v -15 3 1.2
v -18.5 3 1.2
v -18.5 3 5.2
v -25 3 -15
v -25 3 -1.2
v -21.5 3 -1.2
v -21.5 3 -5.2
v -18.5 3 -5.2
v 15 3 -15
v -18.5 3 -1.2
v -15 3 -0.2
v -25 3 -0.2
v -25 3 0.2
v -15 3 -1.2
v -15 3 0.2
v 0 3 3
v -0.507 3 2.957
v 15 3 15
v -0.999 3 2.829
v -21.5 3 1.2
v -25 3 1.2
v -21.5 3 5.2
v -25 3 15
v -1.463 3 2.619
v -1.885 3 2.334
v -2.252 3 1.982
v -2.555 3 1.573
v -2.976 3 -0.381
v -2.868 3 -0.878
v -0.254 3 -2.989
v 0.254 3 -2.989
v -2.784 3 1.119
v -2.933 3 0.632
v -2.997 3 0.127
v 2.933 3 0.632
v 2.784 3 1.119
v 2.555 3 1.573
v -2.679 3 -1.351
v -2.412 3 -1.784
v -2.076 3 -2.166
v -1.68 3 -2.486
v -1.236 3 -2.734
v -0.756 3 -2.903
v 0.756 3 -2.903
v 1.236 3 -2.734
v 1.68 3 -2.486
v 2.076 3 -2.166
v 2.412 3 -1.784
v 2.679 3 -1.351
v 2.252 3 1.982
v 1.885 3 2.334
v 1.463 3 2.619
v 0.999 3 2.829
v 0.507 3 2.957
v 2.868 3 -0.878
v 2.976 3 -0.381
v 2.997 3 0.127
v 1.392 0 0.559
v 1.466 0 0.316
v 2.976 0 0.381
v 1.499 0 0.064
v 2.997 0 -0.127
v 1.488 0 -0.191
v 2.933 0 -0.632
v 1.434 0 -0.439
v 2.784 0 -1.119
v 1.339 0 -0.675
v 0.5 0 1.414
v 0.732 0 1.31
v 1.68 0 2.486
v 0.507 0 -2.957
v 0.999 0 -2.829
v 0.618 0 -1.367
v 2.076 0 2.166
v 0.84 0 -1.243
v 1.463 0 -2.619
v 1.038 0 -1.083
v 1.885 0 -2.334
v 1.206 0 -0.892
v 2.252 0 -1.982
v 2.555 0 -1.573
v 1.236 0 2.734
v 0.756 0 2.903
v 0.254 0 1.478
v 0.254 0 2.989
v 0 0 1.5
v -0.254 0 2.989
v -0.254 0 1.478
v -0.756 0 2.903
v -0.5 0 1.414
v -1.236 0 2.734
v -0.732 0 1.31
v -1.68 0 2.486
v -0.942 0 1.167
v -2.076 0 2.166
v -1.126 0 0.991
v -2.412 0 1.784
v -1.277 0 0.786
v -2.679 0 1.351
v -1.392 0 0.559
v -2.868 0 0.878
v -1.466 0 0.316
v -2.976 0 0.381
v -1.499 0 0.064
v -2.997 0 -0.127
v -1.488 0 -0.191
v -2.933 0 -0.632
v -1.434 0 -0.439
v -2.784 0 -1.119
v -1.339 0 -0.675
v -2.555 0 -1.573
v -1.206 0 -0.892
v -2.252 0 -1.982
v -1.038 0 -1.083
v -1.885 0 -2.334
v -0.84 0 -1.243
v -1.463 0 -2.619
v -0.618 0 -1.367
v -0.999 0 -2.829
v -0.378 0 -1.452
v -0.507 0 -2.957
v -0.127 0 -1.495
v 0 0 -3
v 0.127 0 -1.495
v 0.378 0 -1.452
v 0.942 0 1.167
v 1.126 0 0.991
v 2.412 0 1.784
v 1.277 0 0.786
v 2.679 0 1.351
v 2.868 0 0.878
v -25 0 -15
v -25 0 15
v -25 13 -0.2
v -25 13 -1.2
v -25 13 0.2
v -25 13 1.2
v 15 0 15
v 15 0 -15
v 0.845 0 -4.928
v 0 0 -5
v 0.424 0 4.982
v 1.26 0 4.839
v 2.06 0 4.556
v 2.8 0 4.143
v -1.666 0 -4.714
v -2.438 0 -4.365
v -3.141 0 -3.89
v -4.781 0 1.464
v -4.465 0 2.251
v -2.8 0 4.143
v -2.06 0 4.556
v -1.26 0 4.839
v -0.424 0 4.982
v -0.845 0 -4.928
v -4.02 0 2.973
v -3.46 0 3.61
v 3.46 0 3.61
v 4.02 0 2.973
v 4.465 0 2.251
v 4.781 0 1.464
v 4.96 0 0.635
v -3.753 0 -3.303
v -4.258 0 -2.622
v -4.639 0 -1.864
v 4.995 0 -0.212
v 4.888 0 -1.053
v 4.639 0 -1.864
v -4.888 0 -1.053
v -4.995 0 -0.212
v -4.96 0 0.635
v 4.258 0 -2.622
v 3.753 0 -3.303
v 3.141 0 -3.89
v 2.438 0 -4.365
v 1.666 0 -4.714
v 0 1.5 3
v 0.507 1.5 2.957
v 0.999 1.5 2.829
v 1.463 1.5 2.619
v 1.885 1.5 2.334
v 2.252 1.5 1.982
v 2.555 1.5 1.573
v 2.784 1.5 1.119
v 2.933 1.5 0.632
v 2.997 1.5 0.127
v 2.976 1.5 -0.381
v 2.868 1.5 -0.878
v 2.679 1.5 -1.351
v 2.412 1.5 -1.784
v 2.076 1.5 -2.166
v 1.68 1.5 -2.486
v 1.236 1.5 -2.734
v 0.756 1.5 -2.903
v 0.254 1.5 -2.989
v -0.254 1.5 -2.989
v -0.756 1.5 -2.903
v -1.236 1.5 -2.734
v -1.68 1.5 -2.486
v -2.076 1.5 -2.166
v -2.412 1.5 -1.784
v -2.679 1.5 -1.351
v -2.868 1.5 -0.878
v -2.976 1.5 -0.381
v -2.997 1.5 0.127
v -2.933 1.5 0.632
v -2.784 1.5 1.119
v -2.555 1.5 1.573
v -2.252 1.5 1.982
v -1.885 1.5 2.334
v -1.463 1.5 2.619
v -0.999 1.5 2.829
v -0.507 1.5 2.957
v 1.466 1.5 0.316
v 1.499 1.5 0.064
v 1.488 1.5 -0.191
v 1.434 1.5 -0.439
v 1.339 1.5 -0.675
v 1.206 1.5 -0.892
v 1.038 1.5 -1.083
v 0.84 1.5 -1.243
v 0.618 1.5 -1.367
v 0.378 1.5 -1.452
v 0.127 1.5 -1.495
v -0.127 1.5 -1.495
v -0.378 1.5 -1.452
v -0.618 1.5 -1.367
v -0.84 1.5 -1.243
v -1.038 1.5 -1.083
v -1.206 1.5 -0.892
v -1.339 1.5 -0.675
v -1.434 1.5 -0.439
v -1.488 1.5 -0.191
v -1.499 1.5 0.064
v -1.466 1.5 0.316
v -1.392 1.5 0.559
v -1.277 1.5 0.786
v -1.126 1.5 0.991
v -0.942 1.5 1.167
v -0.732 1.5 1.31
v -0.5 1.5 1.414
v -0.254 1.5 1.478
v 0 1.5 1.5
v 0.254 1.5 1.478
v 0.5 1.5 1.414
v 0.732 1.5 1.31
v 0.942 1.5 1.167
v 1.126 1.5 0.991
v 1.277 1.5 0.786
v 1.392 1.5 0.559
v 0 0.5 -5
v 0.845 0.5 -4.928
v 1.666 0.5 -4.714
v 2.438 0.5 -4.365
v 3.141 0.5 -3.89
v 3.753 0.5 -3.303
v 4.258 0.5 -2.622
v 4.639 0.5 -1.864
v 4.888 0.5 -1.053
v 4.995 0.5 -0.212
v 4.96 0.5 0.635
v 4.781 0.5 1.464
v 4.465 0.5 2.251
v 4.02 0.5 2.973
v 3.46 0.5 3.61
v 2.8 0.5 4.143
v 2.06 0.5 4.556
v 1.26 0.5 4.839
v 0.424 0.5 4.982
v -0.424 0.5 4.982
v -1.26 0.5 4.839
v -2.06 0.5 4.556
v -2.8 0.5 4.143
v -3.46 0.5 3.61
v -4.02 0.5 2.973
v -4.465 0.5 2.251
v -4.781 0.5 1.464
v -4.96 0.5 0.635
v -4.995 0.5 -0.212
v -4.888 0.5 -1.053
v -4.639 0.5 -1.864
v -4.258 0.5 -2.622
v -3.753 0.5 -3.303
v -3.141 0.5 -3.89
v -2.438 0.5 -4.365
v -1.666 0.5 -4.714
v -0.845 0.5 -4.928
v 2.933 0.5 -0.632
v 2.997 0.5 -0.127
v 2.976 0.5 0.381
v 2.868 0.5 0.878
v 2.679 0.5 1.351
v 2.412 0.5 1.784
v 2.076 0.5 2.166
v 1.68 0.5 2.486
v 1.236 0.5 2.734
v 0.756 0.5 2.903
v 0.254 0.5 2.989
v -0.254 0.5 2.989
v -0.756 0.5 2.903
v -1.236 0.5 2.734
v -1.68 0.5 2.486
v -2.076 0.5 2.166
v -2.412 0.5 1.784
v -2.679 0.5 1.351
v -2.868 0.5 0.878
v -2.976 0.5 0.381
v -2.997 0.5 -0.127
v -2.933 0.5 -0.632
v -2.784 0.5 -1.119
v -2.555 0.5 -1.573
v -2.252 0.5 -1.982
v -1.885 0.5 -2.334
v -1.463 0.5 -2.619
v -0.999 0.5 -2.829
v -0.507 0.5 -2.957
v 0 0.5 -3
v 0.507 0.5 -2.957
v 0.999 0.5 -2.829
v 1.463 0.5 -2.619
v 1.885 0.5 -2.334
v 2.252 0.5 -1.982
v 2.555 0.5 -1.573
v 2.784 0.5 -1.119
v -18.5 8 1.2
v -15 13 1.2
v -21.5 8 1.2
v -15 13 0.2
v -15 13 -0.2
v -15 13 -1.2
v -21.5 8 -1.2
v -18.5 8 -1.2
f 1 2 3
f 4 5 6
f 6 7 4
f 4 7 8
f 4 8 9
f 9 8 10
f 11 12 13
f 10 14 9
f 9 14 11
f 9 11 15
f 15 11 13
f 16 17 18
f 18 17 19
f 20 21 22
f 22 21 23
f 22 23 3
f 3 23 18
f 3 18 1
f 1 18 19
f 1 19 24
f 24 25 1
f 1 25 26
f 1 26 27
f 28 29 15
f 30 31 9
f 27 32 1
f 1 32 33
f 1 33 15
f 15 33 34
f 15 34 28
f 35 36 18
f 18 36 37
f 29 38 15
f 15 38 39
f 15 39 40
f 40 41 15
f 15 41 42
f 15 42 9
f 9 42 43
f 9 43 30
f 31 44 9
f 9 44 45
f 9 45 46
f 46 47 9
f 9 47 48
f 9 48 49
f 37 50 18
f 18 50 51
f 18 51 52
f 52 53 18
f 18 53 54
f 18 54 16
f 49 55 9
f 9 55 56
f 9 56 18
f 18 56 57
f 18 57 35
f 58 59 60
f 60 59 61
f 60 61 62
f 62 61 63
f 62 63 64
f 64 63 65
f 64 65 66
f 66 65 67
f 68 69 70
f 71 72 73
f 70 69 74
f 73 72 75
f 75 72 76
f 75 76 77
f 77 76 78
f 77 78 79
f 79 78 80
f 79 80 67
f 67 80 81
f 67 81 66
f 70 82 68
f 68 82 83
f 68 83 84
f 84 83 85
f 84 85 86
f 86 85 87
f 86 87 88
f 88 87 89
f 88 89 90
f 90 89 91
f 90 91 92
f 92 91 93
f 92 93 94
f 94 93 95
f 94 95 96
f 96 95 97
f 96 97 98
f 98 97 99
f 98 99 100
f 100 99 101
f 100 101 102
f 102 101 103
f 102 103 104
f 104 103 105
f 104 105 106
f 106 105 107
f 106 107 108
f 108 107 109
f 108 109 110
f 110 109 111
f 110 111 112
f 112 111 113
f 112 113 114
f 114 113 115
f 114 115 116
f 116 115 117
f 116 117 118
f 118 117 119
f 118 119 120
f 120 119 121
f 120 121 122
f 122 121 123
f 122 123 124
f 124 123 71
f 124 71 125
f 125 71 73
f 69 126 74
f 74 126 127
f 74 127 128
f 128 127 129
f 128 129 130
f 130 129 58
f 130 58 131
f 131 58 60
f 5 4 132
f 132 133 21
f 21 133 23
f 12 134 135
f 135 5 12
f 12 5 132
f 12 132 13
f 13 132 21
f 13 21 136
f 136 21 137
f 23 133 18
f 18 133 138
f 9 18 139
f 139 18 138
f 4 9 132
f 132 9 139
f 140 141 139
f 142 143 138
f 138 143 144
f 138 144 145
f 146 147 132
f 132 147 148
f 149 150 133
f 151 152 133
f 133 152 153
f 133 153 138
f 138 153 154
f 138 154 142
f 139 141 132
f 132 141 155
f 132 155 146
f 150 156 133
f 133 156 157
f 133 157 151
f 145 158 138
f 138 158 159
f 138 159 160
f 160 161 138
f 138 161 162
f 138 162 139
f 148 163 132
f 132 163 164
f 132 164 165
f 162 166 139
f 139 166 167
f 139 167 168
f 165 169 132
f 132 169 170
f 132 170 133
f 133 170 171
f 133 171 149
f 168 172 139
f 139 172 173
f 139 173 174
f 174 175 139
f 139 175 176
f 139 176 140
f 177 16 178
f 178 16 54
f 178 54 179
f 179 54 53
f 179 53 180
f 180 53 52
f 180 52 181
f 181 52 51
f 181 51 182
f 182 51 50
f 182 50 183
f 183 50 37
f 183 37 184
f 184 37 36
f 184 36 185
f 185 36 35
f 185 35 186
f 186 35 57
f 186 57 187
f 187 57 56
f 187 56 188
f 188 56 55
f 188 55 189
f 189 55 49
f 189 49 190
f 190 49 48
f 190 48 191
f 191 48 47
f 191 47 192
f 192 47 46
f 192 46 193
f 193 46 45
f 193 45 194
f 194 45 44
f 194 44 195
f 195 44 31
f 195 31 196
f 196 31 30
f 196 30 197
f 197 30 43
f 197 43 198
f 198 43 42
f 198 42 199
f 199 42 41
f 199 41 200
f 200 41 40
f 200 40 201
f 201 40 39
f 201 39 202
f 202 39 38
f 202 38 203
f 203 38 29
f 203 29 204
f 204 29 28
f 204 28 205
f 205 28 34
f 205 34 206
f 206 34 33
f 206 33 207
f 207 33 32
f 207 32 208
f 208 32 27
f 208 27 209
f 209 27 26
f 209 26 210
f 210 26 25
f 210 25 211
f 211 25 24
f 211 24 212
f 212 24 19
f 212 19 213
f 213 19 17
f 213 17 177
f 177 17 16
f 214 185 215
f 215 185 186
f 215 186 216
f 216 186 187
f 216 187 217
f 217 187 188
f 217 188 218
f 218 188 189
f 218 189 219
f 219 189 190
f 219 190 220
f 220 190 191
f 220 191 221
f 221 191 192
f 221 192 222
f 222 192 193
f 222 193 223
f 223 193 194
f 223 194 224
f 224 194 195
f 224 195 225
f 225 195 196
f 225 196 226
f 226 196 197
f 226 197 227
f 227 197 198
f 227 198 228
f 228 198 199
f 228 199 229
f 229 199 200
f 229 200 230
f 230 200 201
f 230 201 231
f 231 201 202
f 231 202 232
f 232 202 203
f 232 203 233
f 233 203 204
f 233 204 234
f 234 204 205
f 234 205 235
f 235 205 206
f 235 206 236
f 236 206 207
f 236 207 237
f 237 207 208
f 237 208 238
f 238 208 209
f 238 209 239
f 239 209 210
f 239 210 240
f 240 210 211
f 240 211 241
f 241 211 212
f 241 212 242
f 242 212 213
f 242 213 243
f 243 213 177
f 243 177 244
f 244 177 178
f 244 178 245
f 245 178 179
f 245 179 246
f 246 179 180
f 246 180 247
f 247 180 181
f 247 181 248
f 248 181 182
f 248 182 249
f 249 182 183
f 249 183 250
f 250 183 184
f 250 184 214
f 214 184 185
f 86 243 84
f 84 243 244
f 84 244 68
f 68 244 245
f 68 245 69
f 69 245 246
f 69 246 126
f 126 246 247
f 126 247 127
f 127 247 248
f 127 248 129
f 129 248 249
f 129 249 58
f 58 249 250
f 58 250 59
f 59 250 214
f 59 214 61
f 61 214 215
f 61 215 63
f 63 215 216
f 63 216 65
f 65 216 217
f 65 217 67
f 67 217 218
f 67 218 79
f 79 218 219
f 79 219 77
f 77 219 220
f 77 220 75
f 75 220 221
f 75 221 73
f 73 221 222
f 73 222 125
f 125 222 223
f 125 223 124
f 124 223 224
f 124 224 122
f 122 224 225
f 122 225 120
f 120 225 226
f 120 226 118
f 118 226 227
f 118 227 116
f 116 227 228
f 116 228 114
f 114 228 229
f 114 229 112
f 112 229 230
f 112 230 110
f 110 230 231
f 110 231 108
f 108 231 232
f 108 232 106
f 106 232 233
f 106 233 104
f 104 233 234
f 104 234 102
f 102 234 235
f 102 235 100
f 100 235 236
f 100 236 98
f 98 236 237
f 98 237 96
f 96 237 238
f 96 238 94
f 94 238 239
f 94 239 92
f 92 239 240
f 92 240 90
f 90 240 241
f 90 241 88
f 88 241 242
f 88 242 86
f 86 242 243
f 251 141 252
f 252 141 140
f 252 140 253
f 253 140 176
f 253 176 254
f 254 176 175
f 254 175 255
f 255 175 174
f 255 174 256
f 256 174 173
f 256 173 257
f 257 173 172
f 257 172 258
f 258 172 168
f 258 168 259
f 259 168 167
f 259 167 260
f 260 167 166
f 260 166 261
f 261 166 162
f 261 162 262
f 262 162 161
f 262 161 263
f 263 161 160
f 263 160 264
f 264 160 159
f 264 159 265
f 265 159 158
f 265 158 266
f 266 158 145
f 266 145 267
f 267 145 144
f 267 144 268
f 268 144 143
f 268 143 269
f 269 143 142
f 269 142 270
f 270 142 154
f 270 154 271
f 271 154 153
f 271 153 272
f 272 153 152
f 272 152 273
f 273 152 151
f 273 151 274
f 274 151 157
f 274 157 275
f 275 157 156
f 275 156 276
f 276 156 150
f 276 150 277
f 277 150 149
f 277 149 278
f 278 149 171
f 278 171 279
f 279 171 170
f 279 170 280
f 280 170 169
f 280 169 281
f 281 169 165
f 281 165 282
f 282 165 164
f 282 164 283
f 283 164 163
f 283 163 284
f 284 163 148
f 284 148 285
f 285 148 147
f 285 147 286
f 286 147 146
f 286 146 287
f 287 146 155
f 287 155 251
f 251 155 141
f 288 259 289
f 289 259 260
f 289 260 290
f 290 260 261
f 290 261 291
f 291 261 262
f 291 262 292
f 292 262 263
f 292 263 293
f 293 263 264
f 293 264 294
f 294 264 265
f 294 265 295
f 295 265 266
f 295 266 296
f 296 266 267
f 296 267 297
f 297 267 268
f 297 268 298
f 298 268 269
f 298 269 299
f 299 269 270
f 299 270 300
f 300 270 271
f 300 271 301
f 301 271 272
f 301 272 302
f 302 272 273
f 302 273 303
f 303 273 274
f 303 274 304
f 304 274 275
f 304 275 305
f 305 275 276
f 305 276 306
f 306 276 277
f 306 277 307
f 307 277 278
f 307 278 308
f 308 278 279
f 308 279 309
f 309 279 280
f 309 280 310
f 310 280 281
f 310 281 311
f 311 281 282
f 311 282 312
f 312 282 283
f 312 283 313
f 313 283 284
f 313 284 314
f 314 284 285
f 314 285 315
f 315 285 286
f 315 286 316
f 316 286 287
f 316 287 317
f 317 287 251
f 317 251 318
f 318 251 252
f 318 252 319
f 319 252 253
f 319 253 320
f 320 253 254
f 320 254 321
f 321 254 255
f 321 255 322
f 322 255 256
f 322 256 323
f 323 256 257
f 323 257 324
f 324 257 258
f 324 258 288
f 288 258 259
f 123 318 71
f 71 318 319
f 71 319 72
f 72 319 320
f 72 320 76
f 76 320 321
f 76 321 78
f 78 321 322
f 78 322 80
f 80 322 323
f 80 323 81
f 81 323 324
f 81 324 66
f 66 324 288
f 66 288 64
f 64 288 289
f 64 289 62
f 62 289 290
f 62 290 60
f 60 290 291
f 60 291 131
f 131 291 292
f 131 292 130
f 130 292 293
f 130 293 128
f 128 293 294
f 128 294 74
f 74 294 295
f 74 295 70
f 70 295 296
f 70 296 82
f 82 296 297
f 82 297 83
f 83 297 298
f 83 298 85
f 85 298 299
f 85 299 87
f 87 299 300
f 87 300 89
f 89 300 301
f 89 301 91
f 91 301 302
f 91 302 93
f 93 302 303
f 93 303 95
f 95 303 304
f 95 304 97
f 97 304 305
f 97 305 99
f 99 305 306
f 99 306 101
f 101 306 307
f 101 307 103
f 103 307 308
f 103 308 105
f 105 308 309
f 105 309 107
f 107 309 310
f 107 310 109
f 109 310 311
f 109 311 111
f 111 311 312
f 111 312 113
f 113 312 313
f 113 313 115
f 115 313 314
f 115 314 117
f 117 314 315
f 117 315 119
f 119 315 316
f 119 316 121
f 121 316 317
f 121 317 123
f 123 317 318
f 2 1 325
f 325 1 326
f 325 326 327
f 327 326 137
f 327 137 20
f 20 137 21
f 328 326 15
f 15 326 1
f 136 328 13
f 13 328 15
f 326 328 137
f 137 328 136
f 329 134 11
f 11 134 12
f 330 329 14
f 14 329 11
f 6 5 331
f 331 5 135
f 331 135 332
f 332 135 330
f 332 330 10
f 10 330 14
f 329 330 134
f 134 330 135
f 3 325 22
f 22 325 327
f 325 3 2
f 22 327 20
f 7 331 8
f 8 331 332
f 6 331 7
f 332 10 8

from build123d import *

# Parameters (mm, degrees)
SKETCH1_W           = 40
SKETCH1_H           = 30
BOSS_EXTRUDE1_DEPTH = 3
SKETCH2_R           = 3
CUT_EXTRUDE1_DEPTH  = 1.5
SKETCH3_R           = 1.5
CUT_EXTRUDE2_DEPTH  = 30.193321154
SKETCH4_R           = 5
SKETCH4_R_2         = 3
CUT_EXTRUDE3_DEPTH  = 0.5
SKETCH6_W           = 10
SKETCH6_H           = 1
BOSS_EXTRUDE2_DEPTH = 10
RIB5_REACH          = 42.237
SKETCH10_WALL_W     = 88.876722392
SKETCH10_WALL_H     = 3


with BuildPart() as part:
    # Sketch1 → Boss-Extrude1 (new body)
    with BuildSketch(Plane(origin=(0, 0, 0), x_dir=(1, 0, 0), z_dir=(0, 1, 0))):
        with Locations((-5, 0)):
            Rectangle(SKETCH1_W, SKETCH1_H)
    extrude(amount=BOSS_EXTRUDE1_DEPTH)

    # Sketch2 → Cut-Extrude1 (cut)
    with BuildSketch(Plane(origin=(0, 3, 0), x_dir=(1, 0, 0), z_dir=(0, 1, 0))):
        with Locations(Location((0, 0, 0), (0, 0, 270))):
            Circle(SKETCH2_R)
    extrude(amount=-CUT_EXTRUDE1_DEPTH, mode=Mode.SUBTRACT)

    # Sketch3 → Cut-Extrude2 (cut, through all)
    with BuildSketch(Plane(origin=(0, 1.5, 0), x_dir=(1, 0, 0), z_dir=(0, 1, 0))):
        with Locations(Location((0, 0, 0), (0, 0, 270))):
            Circle(SKETCH3_R)
    extrude(amount=-CUT_EXTRUDE2_DEPTH, mode=Mode.SUBTRACT)

    # Sketch4 → Cut-Extrude3 (cut)
    with BuildSketch(Plane.XZ):
        with Locations(Location((0, 0, 0), (0, 0, 270))):
            Circle(SKETCH4_R)
        with Locations(Location((0, 0, 0), (0, 0, 90))):
            Circle(SKETCH4_R_2, mode=Mode.SUBTRACT)
    extrude(amount=-CUT_EXTRUDE3_DEPTH, mode=Mode.SUBTRACT)

    # Sketch6 → Boss-Extrude2 (add)
    with BuildSketch(Plane(origin=(0, 3, 0), x_dir=(1, 0, 0), z_dir=(0, 1, 0))):
        with Locations((-20, -0.7)):
            Rectangle(SKETCH6_W, SKETCH6_H)
        with Locations((-20, 0.7)):
            Rectangle(SKETCH6_W, SKETCH6_H)
    extrude(amount=BOSS_EXTRUDE2_DEPTH)

    # Sketch10 wall → Rib5 (add, up to next)
    with BuildSketch(Plane(origin=(-20, 5.5, 3.2), x_dir=(0, -0.780868809443, 0.624695047554), z_dir=(0, -0.624695047554, -0.780868809443)), mode=Mode.PRIVATE) as rib5_sk1:
        Rectangle(SKETCH10_WALL_W, SKETCH10_WALL_H)
    rib5_tool1 = extrude(rib5_sk1.sketch, amount=RIB5_REACH, mode=Mode.PRIVATE) - part.part
    rib5 = rib5_tool1.solids().sort_by_distance((-20, 5.5, 3.2))[0]
    add(rib5)

    # Mirror1: Rib5 across plane
    add(rib5.mirror(Plane.XY))


solid = part.part
